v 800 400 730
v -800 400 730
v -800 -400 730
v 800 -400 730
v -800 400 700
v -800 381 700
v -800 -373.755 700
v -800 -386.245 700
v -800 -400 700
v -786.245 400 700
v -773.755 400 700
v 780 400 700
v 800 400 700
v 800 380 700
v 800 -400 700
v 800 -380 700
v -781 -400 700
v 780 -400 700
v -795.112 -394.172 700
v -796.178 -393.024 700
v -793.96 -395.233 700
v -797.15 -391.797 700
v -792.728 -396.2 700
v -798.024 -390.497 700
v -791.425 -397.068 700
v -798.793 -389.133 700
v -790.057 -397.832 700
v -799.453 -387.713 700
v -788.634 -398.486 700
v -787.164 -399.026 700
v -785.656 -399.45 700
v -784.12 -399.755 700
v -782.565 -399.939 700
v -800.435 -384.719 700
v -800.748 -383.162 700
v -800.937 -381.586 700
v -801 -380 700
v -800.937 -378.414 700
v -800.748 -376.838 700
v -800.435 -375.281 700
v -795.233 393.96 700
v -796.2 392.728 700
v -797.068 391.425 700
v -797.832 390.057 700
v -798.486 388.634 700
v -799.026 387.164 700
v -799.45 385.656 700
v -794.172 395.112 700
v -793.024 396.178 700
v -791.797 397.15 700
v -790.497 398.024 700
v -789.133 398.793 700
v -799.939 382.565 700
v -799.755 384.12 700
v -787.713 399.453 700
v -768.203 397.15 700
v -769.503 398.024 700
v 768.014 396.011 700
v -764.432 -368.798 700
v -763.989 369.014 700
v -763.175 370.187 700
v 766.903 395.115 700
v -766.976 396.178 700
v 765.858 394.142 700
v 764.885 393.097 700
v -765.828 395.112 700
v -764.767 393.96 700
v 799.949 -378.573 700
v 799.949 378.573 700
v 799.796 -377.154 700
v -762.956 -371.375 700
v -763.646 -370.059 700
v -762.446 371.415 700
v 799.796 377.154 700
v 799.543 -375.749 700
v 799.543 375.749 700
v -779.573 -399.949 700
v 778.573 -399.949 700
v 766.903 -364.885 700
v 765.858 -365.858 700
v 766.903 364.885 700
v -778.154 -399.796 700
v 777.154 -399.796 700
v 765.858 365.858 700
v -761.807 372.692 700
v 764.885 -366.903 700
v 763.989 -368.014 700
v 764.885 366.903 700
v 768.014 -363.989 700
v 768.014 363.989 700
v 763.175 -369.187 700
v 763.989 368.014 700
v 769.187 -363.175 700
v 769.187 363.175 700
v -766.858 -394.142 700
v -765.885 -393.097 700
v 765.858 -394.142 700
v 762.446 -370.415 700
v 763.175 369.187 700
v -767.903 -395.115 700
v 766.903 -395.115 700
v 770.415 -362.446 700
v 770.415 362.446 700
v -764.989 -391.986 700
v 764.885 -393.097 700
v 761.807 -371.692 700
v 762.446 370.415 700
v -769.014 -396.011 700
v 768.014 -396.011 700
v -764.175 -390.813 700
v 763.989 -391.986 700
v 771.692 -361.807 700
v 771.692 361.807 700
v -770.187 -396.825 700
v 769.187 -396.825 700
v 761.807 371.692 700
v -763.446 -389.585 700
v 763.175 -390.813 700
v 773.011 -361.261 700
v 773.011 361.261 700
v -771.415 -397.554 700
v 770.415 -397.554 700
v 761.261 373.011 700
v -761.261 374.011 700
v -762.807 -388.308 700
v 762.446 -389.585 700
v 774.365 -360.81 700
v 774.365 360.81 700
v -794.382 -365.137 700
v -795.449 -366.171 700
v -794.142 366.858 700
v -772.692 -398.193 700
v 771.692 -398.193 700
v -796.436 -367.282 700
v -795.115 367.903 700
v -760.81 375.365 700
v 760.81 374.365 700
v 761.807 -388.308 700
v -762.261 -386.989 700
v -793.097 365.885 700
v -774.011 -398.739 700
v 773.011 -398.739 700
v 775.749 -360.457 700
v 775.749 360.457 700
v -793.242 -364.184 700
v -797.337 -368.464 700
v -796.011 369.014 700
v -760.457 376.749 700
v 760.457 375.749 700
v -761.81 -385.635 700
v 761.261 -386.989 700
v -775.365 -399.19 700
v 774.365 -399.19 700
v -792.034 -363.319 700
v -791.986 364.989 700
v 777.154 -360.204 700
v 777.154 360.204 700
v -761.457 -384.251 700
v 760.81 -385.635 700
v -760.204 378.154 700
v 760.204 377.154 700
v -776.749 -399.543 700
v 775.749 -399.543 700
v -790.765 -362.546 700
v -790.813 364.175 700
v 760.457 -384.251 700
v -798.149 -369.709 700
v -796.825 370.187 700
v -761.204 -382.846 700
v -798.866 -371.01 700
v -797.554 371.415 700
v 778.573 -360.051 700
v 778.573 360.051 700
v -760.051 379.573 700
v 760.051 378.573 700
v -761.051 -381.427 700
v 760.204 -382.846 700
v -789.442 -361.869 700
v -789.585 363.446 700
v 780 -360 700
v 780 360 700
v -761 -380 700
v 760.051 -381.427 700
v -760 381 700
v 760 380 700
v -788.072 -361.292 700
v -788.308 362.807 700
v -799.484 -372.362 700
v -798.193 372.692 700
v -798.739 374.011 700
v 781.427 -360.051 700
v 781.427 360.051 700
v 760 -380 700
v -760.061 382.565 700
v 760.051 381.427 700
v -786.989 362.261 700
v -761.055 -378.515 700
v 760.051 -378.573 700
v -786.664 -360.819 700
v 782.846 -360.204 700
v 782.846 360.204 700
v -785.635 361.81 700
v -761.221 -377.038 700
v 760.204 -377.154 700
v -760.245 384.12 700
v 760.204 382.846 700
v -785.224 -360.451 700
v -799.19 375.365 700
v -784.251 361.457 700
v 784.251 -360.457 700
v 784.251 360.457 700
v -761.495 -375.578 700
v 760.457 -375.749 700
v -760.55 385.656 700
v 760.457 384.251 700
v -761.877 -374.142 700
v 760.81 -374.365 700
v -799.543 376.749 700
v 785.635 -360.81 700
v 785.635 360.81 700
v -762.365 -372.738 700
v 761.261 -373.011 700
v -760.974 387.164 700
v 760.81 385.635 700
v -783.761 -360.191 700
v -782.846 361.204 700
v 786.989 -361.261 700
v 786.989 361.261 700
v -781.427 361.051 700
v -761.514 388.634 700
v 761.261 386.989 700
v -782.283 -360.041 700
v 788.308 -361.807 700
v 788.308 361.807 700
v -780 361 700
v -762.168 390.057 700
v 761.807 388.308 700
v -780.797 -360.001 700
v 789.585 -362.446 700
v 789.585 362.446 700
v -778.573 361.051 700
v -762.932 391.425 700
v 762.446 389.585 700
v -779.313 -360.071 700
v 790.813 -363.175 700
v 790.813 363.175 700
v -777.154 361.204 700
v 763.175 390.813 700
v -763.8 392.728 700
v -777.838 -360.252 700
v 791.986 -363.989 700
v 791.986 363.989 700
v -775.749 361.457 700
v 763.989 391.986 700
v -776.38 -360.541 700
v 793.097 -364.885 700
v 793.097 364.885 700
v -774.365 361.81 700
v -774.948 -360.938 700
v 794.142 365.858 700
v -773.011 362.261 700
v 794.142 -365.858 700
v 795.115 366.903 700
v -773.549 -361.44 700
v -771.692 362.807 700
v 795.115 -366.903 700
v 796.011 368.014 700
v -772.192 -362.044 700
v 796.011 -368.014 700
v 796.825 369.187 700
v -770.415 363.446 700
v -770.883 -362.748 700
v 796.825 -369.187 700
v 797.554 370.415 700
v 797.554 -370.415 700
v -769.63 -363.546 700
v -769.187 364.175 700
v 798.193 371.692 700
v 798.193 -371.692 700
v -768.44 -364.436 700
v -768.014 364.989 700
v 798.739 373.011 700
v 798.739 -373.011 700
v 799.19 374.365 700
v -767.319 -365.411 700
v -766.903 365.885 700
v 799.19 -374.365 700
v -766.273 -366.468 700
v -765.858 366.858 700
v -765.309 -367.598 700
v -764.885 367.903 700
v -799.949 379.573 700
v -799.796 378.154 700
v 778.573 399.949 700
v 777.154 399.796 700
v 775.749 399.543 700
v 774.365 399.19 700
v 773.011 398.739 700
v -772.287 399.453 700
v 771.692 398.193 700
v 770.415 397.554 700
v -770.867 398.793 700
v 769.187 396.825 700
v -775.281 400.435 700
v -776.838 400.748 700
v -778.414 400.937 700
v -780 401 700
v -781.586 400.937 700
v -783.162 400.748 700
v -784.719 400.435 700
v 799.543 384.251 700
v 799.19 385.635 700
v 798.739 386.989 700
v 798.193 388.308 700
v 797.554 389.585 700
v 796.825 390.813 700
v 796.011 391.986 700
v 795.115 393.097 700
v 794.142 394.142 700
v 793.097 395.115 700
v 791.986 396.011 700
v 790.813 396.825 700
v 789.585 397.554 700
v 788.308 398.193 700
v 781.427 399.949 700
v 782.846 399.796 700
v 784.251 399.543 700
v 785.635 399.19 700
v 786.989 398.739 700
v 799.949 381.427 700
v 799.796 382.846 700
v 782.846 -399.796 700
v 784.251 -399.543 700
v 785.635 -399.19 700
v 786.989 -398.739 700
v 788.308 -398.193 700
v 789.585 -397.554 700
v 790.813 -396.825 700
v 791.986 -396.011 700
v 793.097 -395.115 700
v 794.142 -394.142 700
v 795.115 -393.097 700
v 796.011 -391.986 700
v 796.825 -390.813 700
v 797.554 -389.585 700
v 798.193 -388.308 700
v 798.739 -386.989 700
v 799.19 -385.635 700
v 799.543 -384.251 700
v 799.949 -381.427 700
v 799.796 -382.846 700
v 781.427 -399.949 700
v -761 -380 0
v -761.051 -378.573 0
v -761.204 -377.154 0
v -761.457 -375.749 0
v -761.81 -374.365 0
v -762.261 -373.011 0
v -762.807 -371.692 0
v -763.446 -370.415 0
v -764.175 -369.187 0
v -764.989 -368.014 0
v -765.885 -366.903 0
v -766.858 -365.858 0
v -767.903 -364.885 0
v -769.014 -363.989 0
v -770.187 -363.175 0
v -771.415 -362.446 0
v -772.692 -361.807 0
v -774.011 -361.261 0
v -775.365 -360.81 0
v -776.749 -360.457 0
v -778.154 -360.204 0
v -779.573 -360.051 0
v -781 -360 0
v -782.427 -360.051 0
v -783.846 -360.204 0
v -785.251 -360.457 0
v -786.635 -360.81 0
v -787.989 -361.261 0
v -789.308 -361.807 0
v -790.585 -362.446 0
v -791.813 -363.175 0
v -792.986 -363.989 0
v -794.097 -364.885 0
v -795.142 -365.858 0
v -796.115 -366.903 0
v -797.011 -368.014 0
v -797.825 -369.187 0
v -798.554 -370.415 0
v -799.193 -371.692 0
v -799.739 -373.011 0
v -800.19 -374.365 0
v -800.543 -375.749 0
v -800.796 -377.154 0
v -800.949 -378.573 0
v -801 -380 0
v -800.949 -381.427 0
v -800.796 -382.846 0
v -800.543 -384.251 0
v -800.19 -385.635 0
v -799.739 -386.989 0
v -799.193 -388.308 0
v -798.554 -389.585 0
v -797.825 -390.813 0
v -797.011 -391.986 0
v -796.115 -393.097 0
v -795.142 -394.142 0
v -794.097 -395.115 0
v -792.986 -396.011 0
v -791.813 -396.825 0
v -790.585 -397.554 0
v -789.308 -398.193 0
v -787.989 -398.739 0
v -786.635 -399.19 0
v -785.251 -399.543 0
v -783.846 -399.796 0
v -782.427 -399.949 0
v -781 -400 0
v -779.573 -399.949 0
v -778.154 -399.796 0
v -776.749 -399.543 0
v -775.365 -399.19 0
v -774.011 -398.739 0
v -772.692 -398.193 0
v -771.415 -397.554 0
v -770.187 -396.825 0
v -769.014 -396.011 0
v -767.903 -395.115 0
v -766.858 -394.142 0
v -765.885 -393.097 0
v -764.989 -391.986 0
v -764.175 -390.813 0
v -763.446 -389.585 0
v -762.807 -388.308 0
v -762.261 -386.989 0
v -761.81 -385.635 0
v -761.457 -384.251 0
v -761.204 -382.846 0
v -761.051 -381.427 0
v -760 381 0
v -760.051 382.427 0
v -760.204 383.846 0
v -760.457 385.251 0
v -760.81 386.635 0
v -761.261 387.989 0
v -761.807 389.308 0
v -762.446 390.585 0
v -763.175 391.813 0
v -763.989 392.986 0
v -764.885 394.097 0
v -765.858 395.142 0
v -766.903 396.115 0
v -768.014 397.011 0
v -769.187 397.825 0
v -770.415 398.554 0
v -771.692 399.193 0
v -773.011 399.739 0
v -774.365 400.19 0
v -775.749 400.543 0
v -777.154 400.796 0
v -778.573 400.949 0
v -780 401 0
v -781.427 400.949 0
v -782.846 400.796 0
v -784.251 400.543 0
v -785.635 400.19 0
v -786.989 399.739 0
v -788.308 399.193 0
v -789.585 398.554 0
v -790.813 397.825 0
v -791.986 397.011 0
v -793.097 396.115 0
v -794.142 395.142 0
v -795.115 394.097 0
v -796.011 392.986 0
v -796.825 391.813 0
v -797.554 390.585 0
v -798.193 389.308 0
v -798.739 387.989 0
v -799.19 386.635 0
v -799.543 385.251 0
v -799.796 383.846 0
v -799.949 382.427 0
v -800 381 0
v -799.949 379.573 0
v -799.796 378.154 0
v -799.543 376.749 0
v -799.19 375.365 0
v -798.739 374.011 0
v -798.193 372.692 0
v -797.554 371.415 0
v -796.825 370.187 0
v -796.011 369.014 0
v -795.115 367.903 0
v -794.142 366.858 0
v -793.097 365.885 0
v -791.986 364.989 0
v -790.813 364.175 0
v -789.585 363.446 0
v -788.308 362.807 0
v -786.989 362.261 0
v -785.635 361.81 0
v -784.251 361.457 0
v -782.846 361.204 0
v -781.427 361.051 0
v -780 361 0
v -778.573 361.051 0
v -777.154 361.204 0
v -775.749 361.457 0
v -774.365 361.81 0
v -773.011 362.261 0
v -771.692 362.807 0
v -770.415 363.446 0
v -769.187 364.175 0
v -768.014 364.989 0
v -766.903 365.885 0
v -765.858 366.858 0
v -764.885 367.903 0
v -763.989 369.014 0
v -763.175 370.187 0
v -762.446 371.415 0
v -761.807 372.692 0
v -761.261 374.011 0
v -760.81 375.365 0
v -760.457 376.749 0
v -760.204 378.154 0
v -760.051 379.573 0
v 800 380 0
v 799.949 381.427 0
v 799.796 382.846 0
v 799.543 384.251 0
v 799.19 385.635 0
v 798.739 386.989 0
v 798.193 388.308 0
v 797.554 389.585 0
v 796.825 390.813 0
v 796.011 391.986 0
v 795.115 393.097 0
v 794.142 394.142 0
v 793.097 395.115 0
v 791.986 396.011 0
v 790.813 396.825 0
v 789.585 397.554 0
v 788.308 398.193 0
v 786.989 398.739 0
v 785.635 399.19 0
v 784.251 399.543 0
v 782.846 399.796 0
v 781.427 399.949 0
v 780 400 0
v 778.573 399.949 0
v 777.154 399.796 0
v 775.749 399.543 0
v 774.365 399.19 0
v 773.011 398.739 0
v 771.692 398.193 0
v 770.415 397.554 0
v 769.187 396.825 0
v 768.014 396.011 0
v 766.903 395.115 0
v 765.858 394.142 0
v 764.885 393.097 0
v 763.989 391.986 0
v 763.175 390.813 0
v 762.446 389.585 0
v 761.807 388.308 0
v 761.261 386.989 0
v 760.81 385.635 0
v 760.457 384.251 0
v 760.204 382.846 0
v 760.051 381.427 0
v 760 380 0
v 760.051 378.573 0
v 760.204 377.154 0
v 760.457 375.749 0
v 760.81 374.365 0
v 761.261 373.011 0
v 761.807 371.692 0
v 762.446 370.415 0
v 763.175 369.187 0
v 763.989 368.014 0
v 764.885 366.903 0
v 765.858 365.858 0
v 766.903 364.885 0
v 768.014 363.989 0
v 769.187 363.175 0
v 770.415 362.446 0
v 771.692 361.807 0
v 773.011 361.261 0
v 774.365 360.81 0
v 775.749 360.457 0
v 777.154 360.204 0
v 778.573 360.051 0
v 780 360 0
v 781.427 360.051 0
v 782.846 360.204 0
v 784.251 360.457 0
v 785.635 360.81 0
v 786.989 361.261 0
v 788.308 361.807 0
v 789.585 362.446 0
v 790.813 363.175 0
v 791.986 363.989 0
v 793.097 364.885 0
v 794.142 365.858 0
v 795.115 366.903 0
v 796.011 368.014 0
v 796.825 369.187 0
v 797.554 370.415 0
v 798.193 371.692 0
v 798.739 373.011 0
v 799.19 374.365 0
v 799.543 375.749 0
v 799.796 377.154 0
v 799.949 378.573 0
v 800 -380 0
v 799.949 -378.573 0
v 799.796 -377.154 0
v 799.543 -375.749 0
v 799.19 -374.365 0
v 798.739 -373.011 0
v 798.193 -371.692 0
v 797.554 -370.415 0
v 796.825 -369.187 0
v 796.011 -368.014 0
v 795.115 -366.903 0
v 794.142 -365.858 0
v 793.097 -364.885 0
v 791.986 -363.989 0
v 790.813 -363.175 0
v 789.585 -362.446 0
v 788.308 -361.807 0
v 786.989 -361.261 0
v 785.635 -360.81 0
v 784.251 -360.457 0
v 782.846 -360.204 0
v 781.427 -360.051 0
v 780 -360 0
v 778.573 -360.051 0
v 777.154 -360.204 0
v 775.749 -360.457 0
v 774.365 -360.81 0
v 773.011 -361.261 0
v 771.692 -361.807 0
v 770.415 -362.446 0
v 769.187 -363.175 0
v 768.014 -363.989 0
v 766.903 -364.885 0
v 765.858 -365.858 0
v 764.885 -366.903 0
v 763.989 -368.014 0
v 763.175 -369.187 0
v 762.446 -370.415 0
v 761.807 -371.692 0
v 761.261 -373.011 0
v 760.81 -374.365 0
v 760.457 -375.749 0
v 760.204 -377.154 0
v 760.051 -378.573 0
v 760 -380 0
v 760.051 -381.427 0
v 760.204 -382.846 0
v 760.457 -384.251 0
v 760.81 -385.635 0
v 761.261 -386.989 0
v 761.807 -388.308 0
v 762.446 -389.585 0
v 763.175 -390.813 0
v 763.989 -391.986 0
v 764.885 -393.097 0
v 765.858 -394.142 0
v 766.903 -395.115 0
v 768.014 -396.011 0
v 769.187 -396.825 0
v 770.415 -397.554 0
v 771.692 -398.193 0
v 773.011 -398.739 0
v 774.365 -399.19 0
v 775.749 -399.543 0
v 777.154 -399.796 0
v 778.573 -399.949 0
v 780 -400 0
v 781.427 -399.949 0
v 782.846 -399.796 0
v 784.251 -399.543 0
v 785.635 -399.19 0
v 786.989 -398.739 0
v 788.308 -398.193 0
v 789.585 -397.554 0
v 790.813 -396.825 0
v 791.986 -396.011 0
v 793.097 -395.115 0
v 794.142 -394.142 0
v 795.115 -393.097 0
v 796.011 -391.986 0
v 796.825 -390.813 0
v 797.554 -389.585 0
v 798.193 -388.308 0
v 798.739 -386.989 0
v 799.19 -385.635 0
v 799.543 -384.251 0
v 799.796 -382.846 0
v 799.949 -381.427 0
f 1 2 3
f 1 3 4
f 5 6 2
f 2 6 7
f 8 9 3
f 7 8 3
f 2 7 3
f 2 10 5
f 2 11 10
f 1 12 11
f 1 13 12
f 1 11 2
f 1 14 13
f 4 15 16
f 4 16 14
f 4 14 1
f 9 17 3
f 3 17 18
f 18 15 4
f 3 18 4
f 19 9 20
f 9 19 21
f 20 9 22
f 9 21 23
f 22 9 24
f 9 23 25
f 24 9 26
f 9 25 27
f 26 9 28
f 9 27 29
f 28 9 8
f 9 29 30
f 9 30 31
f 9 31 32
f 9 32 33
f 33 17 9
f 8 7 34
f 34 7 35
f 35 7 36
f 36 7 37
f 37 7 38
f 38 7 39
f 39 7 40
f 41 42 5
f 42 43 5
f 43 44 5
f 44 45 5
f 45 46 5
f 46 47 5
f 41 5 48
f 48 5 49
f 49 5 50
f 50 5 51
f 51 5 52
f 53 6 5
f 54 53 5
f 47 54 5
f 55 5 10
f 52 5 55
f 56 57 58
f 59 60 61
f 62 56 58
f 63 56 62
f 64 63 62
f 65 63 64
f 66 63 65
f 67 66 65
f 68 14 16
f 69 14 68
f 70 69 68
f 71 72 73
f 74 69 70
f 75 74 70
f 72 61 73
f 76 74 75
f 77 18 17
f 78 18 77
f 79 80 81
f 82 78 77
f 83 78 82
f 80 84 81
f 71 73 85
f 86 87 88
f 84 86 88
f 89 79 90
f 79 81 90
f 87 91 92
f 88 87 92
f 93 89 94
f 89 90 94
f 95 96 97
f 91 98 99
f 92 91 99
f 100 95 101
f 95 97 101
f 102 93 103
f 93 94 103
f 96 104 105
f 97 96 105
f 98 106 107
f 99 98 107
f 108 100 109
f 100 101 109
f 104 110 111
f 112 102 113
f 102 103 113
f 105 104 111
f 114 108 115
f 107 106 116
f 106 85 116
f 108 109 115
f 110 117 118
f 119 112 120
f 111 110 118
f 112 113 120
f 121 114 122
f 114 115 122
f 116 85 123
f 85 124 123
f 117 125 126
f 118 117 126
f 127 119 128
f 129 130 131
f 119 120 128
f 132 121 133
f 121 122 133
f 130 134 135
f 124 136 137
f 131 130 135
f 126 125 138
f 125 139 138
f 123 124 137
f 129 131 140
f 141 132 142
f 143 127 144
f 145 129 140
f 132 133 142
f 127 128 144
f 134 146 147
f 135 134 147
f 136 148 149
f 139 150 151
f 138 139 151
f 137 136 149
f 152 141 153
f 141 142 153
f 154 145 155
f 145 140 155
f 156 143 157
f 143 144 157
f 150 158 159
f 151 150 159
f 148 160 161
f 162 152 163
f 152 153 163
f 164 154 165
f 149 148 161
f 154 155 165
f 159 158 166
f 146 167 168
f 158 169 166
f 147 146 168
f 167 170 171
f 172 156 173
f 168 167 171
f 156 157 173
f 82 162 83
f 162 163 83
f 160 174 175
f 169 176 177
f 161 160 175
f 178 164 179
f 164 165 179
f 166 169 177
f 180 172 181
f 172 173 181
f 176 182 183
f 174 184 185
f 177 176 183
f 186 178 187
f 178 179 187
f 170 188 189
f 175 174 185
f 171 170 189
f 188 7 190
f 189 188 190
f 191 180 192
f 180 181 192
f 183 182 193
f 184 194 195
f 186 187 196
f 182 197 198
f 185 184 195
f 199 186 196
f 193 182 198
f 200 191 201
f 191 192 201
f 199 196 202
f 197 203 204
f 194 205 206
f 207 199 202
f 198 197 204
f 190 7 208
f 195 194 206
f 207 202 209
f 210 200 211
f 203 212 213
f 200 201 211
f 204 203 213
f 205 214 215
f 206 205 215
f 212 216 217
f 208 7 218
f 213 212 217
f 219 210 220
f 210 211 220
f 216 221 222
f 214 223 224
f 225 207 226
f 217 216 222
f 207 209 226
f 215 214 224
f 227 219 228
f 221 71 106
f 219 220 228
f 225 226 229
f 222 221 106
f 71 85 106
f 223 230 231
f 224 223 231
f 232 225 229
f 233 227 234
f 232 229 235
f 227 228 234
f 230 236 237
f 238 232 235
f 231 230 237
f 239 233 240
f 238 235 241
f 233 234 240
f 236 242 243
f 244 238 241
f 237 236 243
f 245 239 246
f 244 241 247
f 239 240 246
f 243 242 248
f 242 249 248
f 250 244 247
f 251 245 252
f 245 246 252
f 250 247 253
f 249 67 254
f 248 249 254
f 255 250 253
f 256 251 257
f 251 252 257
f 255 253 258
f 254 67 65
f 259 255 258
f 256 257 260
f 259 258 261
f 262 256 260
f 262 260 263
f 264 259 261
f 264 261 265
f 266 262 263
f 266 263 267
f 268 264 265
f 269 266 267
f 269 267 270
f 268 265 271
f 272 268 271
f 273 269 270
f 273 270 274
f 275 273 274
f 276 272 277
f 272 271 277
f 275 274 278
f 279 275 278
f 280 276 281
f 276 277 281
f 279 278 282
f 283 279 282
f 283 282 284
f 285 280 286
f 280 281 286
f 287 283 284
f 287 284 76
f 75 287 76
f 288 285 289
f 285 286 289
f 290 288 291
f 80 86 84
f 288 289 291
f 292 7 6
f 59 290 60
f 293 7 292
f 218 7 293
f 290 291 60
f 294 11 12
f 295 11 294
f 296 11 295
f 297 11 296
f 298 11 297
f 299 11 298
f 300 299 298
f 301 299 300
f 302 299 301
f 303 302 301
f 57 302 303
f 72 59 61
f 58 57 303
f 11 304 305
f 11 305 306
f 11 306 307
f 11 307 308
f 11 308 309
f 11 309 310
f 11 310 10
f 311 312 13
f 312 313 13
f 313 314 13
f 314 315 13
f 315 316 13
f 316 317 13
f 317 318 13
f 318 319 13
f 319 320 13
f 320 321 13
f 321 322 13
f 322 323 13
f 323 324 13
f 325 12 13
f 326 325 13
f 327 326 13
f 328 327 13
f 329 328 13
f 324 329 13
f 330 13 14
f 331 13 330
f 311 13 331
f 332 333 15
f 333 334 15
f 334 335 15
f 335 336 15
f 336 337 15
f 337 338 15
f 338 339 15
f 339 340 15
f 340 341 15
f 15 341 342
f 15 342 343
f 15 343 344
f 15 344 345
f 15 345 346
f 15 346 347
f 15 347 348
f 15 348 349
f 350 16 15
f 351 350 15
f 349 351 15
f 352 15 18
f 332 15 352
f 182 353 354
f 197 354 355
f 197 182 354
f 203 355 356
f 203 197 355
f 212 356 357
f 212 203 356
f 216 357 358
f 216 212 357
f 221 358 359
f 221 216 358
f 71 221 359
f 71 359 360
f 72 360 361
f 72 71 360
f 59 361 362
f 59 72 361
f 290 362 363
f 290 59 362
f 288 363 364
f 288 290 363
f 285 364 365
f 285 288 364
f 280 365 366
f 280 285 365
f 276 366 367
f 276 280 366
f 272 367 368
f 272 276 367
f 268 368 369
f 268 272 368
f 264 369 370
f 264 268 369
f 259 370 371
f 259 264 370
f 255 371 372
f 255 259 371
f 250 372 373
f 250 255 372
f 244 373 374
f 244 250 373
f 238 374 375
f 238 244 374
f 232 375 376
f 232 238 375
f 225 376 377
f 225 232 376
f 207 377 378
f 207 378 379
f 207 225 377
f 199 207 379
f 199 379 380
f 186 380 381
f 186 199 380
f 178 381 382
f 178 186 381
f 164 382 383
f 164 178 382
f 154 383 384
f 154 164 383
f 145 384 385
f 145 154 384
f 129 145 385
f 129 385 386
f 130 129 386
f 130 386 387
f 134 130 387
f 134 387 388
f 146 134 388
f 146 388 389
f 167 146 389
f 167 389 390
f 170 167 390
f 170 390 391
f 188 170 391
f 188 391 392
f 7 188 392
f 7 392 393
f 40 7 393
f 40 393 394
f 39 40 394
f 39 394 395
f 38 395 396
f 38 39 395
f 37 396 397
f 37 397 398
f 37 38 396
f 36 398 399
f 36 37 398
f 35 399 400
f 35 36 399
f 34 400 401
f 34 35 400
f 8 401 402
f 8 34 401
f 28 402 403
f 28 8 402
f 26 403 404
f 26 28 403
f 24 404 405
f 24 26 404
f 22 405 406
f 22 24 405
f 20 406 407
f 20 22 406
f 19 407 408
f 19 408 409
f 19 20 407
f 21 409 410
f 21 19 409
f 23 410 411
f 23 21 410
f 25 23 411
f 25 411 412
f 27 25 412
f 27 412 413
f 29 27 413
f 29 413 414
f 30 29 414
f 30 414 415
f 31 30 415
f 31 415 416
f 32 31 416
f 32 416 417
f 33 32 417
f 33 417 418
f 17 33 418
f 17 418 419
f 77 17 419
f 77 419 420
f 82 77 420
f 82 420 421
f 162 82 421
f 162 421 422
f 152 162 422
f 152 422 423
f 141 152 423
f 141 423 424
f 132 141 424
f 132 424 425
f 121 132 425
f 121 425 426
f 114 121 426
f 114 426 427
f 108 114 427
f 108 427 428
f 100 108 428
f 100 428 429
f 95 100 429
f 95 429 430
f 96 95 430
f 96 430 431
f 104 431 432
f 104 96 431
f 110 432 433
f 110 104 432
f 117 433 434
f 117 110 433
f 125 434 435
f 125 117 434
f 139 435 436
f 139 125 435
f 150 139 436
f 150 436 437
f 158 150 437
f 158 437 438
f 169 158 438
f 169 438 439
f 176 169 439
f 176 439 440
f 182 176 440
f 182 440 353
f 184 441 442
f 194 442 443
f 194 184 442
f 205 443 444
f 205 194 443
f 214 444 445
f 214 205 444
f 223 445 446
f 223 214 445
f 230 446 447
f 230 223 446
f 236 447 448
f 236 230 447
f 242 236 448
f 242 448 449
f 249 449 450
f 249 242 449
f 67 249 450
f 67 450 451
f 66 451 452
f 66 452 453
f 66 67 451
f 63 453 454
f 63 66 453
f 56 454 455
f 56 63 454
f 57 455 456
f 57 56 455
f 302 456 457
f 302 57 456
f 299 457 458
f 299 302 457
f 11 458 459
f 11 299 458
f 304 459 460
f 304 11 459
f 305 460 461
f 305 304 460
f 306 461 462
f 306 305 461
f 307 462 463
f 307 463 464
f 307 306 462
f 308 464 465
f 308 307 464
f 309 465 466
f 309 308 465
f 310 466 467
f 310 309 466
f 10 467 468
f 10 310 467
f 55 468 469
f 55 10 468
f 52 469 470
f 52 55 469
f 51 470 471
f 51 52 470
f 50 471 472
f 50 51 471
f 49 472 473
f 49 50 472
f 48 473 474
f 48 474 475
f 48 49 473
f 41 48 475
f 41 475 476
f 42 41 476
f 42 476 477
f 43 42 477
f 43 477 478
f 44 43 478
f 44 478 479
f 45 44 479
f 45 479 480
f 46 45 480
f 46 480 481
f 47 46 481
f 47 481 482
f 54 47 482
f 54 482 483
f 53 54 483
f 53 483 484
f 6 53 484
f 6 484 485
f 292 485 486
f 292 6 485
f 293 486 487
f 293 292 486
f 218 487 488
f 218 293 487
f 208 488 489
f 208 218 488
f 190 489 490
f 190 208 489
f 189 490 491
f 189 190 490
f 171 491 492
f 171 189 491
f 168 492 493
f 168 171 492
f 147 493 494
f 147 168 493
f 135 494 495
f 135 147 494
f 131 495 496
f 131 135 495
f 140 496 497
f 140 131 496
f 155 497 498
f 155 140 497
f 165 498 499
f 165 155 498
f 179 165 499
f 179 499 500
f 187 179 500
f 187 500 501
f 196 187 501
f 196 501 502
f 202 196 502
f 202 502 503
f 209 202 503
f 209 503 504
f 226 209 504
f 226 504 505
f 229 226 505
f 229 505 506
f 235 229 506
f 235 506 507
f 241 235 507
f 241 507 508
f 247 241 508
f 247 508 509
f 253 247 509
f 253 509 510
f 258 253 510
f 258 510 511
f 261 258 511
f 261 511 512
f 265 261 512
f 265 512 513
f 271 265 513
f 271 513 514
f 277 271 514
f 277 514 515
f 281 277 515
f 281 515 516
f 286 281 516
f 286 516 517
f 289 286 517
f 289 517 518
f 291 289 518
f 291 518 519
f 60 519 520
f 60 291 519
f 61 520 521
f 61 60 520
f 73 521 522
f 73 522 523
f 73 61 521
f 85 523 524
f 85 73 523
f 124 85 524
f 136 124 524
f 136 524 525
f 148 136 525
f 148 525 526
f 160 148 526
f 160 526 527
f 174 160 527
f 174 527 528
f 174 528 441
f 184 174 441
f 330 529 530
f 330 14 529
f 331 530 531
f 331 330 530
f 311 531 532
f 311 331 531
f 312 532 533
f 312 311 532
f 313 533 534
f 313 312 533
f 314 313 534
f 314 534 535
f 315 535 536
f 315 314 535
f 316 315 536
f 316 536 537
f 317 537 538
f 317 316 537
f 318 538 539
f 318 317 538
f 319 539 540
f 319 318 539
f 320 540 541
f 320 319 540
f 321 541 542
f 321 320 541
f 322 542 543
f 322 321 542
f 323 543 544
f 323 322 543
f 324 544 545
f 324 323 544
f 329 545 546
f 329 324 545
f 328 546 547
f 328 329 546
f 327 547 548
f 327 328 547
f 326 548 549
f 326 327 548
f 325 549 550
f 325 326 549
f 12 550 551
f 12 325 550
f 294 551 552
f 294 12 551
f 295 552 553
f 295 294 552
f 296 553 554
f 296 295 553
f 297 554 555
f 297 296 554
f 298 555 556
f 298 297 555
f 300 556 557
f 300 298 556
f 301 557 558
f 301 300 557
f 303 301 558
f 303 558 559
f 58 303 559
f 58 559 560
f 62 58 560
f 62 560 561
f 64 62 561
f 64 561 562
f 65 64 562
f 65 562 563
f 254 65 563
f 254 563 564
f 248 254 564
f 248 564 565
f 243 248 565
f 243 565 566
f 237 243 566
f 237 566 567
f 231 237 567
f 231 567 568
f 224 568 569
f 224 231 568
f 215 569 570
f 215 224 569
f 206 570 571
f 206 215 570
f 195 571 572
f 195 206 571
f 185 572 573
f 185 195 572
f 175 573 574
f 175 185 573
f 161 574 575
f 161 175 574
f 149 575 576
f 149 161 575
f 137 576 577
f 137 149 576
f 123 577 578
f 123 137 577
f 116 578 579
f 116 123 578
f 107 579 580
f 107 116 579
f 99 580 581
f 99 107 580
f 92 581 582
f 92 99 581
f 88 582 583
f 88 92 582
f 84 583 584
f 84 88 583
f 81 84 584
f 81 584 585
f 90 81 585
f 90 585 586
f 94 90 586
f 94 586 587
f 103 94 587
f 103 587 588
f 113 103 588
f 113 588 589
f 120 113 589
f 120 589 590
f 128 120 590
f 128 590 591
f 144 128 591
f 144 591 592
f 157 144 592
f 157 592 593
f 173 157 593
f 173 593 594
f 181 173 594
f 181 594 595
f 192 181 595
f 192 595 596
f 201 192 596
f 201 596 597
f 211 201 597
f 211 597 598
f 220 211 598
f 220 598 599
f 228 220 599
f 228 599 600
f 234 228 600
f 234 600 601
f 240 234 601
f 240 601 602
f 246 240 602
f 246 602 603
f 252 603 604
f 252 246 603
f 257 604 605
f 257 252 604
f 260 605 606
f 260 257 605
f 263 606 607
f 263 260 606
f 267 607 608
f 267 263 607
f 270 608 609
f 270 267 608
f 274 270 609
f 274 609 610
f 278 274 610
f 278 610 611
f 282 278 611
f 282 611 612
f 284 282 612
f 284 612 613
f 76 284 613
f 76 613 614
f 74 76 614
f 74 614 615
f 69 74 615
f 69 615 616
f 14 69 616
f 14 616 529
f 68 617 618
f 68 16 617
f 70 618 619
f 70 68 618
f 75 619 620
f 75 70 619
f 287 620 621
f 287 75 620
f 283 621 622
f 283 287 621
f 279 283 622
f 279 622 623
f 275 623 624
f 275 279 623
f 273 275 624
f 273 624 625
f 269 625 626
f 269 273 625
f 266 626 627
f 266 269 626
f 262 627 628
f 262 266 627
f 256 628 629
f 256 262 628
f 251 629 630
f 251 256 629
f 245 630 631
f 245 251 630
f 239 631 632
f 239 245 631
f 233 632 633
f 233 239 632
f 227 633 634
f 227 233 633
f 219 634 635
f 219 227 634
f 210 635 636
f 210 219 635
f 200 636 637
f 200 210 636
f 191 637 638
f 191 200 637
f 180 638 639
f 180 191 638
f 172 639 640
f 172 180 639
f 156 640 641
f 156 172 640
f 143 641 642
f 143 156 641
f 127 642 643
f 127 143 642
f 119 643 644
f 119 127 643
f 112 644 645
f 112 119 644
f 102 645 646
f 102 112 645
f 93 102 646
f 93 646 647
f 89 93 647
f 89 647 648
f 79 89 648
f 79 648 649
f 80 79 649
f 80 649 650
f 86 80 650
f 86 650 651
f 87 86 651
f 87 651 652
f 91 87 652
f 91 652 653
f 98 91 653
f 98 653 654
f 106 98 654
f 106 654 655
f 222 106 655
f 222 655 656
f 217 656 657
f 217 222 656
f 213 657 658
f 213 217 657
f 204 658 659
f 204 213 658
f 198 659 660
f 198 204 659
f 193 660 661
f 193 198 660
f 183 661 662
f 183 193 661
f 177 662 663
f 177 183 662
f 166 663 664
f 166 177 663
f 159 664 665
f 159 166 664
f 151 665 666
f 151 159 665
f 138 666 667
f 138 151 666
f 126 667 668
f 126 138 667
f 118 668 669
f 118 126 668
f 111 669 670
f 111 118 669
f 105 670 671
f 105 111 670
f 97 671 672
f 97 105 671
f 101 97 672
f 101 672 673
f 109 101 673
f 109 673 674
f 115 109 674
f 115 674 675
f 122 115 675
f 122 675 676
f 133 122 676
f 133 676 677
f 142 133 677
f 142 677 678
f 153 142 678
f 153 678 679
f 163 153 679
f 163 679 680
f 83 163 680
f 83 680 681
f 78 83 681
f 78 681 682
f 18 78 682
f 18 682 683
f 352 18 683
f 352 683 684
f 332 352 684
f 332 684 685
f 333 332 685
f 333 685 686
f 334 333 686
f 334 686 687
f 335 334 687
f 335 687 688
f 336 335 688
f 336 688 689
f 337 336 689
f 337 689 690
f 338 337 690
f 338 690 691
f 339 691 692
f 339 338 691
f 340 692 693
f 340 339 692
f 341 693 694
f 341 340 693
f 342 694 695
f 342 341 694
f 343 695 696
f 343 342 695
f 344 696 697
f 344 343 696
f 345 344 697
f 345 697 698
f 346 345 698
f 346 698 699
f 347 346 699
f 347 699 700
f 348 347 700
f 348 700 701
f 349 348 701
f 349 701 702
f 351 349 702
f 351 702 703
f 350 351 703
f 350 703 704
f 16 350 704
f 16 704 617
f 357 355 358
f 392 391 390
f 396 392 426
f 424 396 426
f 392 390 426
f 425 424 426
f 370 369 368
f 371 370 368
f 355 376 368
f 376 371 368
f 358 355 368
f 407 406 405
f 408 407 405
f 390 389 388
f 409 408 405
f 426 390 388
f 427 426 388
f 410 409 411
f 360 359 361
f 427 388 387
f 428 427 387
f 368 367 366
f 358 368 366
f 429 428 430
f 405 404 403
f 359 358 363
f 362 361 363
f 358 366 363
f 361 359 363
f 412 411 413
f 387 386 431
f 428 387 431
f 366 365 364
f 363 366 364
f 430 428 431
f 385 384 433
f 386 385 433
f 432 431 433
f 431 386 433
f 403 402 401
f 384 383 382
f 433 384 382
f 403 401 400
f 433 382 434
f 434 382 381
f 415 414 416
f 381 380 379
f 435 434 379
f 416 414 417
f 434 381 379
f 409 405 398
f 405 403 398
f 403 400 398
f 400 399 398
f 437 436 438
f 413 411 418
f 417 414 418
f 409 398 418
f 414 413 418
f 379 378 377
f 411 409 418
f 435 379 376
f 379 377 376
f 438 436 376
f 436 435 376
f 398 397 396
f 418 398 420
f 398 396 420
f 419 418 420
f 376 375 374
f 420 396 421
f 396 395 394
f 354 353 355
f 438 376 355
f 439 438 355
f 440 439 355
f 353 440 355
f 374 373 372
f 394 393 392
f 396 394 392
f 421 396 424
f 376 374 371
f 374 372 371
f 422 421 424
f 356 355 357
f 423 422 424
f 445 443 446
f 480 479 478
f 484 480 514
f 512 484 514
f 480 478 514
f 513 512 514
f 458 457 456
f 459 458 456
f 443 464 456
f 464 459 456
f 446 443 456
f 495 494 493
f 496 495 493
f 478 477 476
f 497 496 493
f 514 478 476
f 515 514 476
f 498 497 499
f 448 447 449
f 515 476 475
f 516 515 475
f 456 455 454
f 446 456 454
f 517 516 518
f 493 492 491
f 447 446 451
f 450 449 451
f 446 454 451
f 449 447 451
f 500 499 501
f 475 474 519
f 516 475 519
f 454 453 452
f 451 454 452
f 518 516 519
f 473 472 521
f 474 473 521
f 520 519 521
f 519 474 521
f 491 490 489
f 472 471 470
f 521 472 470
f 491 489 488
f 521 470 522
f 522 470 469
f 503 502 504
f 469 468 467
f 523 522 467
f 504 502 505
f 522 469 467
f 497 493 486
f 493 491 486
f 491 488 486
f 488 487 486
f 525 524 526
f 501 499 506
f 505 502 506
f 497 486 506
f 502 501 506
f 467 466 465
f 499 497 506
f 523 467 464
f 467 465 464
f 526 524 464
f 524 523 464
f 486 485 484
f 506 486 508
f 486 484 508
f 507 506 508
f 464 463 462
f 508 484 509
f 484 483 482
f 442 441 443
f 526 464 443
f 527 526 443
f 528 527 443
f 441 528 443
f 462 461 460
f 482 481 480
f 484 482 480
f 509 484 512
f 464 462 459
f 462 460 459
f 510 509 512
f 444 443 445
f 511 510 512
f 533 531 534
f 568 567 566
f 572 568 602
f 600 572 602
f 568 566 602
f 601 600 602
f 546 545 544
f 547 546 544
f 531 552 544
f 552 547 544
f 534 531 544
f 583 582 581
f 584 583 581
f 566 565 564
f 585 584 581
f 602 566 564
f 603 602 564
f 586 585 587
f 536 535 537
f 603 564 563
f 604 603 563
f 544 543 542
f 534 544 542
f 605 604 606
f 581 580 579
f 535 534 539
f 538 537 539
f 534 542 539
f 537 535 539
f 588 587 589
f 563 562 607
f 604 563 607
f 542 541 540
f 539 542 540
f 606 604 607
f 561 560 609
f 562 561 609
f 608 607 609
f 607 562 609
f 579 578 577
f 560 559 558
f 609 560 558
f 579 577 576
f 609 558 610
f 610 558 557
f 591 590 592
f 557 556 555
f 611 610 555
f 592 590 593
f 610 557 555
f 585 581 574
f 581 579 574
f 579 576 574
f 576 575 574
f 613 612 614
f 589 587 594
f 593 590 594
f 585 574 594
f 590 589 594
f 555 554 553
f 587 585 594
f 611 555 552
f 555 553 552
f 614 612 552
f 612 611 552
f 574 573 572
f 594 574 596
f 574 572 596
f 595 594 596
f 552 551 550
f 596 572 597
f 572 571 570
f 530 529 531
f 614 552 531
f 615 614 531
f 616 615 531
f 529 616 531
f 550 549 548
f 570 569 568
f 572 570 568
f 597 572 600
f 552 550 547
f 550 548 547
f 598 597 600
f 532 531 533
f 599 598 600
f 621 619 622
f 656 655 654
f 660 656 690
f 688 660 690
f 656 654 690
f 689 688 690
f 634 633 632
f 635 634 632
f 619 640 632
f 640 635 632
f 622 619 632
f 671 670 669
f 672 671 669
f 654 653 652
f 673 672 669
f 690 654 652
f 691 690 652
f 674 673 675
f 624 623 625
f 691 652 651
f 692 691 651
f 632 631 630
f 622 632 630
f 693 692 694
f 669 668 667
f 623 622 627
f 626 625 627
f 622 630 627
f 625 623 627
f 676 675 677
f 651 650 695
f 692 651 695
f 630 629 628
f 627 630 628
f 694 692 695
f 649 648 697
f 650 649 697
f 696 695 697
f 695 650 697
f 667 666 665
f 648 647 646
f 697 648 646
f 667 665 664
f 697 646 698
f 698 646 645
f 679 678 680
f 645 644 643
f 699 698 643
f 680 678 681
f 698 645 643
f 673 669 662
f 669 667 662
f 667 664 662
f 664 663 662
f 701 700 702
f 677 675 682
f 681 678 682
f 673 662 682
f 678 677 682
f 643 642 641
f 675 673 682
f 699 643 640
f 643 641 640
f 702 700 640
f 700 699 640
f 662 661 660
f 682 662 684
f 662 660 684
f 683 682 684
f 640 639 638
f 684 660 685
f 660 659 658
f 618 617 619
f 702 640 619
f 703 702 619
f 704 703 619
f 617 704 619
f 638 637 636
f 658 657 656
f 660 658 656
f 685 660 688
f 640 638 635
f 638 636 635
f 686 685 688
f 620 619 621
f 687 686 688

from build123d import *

# Parameters (mm, degrees)
CYLINDER002_R     = 20
CYLINDER002_DEPTH = 700
CYLINDER001_R     = 20
CYLINDER001_DEPTH = 700
CYLINDER_R        = 20
CYLINDER_DEPTH    = 700
BOX_W             = 1600
BOX_H             = 800
BOX_DEPTH         = 30
CYLINDER003_R     = 20
CYLINDER003_DEPTH = 700


with BuildPart() as cylinder002:
    # Cylinder002 → Cylinder002 (new body)
    with BuildSketch(Plane(origin=(-780, 381, 0), x_dir=(1, 0, 0), z_dir=(0, 0, 1))):
        Circle(CYLINDER002_R)
    extrude(amount=CYLINDER002_DEPTH)


with BuildPart() as cylinder001:
    # Cylinder001 → Cylinder001 (new body)
    with BuildSketch(Plane(origin=(780, -380, 0), x_dir=(1, 0, 0), z_dir=(0, 0, 1))):
        Circle(CYLINDER001_R)
    extrude(amount=CYLINDER001_DEPTH)


with BuildPart() as cylinder:
    # Cylinder → Cylinder (new body)
    with BuildSketch(Plane(origin=(780, 380, 0), x_dir=(1, 0, 0), z_dir=(0, 0, 1))):
        Circle(CYLINDER_R)
    extrude(amount=CYLINDER_DEPTH)


with BuildPart() as cube:
    # Box → Box (new body)
    with BuildSketch(Plane(origin=(-800, -400, 700), x_dir=(1, 0, 0), z_dir=(0, 0, 1))):
        with Locations((800, 400)):
            Rectangle(BOX_W, BOX_H)
    extrude(amount=BOX_DEPTH)


with BuildPart() as fusion:
    # Cylinder003 → Cylinder003 (new body)
    with BuildSketch(Plane(origin=(-781, -380, 0), x_dir=(1, 0, 0), z_dir=(0, 0, 1))):
        Circle(CYLINDER003_R)
    extrude(amount=CYLINDER003_DEPTH)

    # Fusion: union Cylinder002, Cylinder001, Cylinder, Cube
    add(cylinder002.part)
    add(cylinder001.part)
    add(cylinder.part)
    add(cube.part)


solid = fusion.part
